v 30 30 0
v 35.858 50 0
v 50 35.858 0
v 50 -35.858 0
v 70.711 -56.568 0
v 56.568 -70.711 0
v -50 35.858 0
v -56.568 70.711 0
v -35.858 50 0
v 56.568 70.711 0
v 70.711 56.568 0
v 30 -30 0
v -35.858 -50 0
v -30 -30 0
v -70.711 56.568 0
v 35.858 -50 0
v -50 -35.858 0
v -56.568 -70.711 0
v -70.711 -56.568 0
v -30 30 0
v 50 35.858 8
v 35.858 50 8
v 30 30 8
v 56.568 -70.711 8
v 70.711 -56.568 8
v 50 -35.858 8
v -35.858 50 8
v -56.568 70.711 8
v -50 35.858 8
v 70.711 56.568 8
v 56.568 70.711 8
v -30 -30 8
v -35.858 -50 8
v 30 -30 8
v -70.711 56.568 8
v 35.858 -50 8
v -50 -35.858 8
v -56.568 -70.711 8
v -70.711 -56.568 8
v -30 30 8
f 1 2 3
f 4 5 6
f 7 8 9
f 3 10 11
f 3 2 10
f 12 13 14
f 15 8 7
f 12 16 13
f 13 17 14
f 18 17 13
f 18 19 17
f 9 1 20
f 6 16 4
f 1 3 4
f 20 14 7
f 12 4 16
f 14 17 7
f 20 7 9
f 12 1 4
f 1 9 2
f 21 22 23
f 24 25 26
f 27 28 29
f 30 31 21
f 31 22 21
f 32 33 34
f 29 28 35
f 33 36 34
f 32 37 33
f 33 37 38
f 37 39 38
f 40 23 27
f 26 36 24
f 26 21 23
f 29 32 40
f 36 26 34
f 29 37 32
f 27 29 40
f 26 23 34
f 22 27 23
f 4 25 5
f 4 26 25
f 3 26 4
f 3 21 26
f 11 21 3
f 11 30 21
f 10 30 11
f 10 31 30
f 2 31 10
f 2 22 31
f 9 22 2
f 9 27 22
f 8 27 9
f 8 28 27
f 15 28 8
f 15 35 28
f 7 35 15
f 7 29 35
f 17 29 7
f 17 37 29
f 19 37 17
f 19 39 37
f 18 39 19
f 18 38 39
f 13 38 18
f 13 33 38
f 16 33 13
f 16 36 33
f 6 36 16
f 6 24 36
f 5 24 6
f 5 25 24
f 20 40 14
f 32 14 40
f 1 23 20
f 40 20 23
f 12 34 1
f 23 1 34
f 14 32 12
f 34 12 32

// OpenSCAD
// the model's resolution
model_resolution = 50;


circle_template_frame(
    inlay_size = 60,
    frame_width = 40,
    guide_height = 8,
    resolution = model_resolution);


// Hack a plunge router template using all parameters
// undef default values will be calculated/set automatically
module circle_template_frame(
  inlay_dia,   // the size for matching inlays
  frame_width,  // the frame's width required for the guide template
  guide_height,  // the template guide's height
  resolution = model_resolution) {
    linear_extrude(height=guide_height) {
        difference() {
            union() {
                square(inlay_size+frame_width, center=true);
                rotate([0,0,45]) {
                    square([inlay_size+3*frame_width, frame_width/2], center=true);  
                }
                rotate([0,0,-45]) {
                    square([inlay_size+3*frame_width, frame_width/2], center=true);
                }
            }
            square(inlay_size, center=true);
        }
    }
}
